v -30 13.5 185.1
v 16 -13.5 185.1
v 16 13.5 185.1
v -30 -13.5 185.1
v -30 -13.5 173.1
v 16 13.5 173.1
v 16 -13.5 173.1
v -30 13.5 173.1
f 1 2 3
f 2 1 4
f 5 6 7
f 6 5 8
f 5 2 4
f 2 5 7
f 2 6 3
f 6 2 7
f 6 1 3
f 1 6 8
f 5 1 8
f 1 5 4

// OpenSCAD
// file: ../md_vitamins.scad
// Envelopes of the bought electronics, placed where the parts expect them (for fit checks and renders)
SG90_STL = "/Users/hemangvora/OpenDuck/upstream/Open_Duck_Mini/mini_bdx/robots/open_duck_mini_v2/sg90.stl";
module v_sg90_jaw() multmatrix([[1,0,0,JAW_P[0]-5.7],[0,0,-1,-SG_BASE],[0,1,0,JAW_P[1]],[0,0,0,1]]) import(SG90_STL);
module v_radxa() {                         // Radxa Zero 3W 65 x 30 board on 6 mm standoffs + 16 mm component/wire budget
    translate([RADXA_X0, RADXA_Y0, CH_Z1 + 6]) { cube([65, 30, 1.6]); translate([2, 2, 1.6]) cube([61, 26, 16]); translate([0, 0, -2]) cube([65, 30, 2]); }
}
module v_buck() translate([-30, -13.5, CH_Z1 + 1]) cube([46, 27, 12]);            // XY-3606 (HW-688), generous envelope
module v_camera() translate([103.8, -12.5, EYE_C[1] - 14.5]) { cube([1.0, 25, 24]); translate([1.0, 12.5 - 4.25, 14.5 - 4.25]) cube([5.2, 8.5, 8.5]); }  // Pi cam v2 / IMX219 board + lens module
module v_tof() translate([103.8, TOF_C[0] - 6.5, TOF_C[1] - 6.5]) { cube([1.0, 13, 13]); translate([1.0, 6.5 - 3.2, 6.5 - 1.5]) cube([1.75, 6.4, 3.0]); }
module head_vitamins() { v_sg90_jaw(); v_radxa(); v_buck(); v_camera(); v_tof(); }

// ---------------- body electronics ----------------
module v_pack()    translate([DK_X0, -PACK[1] / 2, DK_Z1]) cube(PACK);                       // 3S1P Samsung 30Q pack
module v_bms()     translate([DK_X0 + 5, -31, DK_Z1 + PACK[2] + 0.5]) cube([48, 62, 7]);      // 3S 40 A BMS, 5-FET board
module v_adapter() translate([-44, -21, SHELF[4] + 4]) { cube([33, 42, 1.6]); translate([1, 1, 1.6]) cube([31, 40, 10]); }   // Bus Servo Adapter (A)
module v_switch()  {   // AUTO MT 12 V 20 A toggle, 12 mm hole; body 28 x 16 behind the panel, cover outside
    translate([DK_X0, SWITCH_C[0] - 14, SWITCH_C[1] - 8]) cube([45, 28, 16]);
    translate([BX_R - 25, SWITCH_C[0] - 14, SWITCH_C[1] - 8]) cube([25, 28, 16]);
}
module v_xt30()    translate([DK_X0, XT30_C[0] - 5.1, XT30_C[1] - 2.6]) cube([16, 10.2, 5.2]);
module v_balance() translate([DK_X0, BAL_C[0] - 6.2, BAL_C[1] - 2.9]) cube([8, 12.4, 5.8]);
module v_caps()    for (y = [26, 33]) translate([-40, y, SHELF[4] + 5.3]) rotate([0, 90, 0]) cylinder(d = 10.2, h = 21);  // 2 x 1000 uF 25 V lying on the shelf
module body_vitamins() { v_pack(); v_bms(); v_adapter(); v_switch(); v_xt30(); v_balance(); v_caps(); }
// file: ../md_params.scad
// =====================================================================
//  Microduck-look skin for the Open Duck Mini v2 skeleton
//  Shared parameters and helpers.
//  Frame: Open Duck print/robot frame, mm. +x forward, +y left, +z up.
//  Every part is modelled where it sits on the robot (zero pose).
// =====================================================================

$fn = 72;
EPS = 0.01;

// ---------- fasteners ----------
INSERT_D   = 4.0;   // hole for M3 x 5 brass heat-set insert (Amazon B0DZ8B7FW1)
INSERT_L   = 6.0;   // hole depth for that insert
M3_CLR     = 3.4;   // M3 clearance
M3_HEAD    = 6.5;   // M3 socket-head counterbore
M3_NUT     = 6.4;   // M3 nut across corners (+clearance)
M2_TAP     = 1.8;   // M2 self-tapping pilot (SG90 tab screws, servo adapter)
M25_TAP    = 2.2;   // M2.5 self-tapping pilot (Radxa)
M2_CLR     = 2.4;

// ---------- colours (for previews only) ----------
C_WHITE = [0.95, 0.94, 0.90];
C_BLACK = [0.13, 0.13, 0.14];

// ---------- helpers ----------
function lerp(a, b, t) = a + (b - a) * t;

// Section with vertical sides from zb to zc and a superellipse cap from zc to zt.
// Points are (y, z). n = 2 gives an ellipse, larger n gives a squarer top.
function se_pts(w, zb, zc, zt, n, N = 56) =
    concat(
        [[ w, zb]],
        [for (i = [0:N]) let(t = i * 180 / N, c = cos(t), s = sin(t))
            [w * sign(c) * pow(abs(c), 2 / n), zc + (zt - zc) * pow(abs(s), 2 / n)]],
        [[-w, zb]]
    );

// st = [x, half_width, z_bottom, z_curve_start, z_top, exponent]
module station(st, inset = 0, ext = 0) {
    translate([st[0], 0, 0]) rotate([90, 0, 90])
        linear_extrude(height = EPS, center = true)
            offset(delta = -inset)
                polygon(se_pts(st[1], st[2] - ext, st[3], st[4], st[5]));
}

// piecewise loft through convex stations (hull of neighbours)
module loft(sts, inset = 0, ext = 0) {
    for (i = [0:len(sts) - 2])
        hull() { station(sts[i], inset, ext); station(sts[i + 1], inset, ext); }
}

// station parameters interpolated at any x inside the list
function st_at(sts, x) =
    let(i = max([for (k = [0:len(sts) - 2]) if (sts[k][0] <= x) k]),
        a = sts[i], b = sts[i + 1], t = (x - a[0]) / (b[0] - a[0]))
    [x, lerp(a[1], b[1], t), lerp(a[2], b[2], t), lerp(a[3], b[3], t),
        lerp(a[4], b[4], t), lerp(a[5], b[5], t)];

// heat-set insert pocket: opening at origin, going along -z by default
module insert_hole(depth = INSERT_L, d = INSERT_D) {
    translate([0, 0, -depth]) cylinder(d = d, h = depth + EPS);
    translate([0, 0, -0.6]) cylinder(d1 = d, d2 = d + 0.8, h = 0.6 + EPS);   // lead-in chamfer
}

// M3 clearance with counterbore, axis +z, counterbore at the top
module m3_cb(len_total, cb_depth) {
    translate([0, 0, -EPS]) cylinder(d = M3_CLR, h = len_total + 2 * EPS);
    translate([0, 0, len_total - cb_depth]) cylinder(d = M3_HEAD, h = cb_depth + 1);
}

module rrect(x0, x1, y0, y1, r) {
    translate([x0 + r, y0 + r]) offset(r = r) square([x1 - x0 - 2 * r, y1 - y0 - 2 * r]);
}
// main file
include <../md_params.scad>
include <../md_head.scad>
include <../md_vitamins.scad>
v_buck();
